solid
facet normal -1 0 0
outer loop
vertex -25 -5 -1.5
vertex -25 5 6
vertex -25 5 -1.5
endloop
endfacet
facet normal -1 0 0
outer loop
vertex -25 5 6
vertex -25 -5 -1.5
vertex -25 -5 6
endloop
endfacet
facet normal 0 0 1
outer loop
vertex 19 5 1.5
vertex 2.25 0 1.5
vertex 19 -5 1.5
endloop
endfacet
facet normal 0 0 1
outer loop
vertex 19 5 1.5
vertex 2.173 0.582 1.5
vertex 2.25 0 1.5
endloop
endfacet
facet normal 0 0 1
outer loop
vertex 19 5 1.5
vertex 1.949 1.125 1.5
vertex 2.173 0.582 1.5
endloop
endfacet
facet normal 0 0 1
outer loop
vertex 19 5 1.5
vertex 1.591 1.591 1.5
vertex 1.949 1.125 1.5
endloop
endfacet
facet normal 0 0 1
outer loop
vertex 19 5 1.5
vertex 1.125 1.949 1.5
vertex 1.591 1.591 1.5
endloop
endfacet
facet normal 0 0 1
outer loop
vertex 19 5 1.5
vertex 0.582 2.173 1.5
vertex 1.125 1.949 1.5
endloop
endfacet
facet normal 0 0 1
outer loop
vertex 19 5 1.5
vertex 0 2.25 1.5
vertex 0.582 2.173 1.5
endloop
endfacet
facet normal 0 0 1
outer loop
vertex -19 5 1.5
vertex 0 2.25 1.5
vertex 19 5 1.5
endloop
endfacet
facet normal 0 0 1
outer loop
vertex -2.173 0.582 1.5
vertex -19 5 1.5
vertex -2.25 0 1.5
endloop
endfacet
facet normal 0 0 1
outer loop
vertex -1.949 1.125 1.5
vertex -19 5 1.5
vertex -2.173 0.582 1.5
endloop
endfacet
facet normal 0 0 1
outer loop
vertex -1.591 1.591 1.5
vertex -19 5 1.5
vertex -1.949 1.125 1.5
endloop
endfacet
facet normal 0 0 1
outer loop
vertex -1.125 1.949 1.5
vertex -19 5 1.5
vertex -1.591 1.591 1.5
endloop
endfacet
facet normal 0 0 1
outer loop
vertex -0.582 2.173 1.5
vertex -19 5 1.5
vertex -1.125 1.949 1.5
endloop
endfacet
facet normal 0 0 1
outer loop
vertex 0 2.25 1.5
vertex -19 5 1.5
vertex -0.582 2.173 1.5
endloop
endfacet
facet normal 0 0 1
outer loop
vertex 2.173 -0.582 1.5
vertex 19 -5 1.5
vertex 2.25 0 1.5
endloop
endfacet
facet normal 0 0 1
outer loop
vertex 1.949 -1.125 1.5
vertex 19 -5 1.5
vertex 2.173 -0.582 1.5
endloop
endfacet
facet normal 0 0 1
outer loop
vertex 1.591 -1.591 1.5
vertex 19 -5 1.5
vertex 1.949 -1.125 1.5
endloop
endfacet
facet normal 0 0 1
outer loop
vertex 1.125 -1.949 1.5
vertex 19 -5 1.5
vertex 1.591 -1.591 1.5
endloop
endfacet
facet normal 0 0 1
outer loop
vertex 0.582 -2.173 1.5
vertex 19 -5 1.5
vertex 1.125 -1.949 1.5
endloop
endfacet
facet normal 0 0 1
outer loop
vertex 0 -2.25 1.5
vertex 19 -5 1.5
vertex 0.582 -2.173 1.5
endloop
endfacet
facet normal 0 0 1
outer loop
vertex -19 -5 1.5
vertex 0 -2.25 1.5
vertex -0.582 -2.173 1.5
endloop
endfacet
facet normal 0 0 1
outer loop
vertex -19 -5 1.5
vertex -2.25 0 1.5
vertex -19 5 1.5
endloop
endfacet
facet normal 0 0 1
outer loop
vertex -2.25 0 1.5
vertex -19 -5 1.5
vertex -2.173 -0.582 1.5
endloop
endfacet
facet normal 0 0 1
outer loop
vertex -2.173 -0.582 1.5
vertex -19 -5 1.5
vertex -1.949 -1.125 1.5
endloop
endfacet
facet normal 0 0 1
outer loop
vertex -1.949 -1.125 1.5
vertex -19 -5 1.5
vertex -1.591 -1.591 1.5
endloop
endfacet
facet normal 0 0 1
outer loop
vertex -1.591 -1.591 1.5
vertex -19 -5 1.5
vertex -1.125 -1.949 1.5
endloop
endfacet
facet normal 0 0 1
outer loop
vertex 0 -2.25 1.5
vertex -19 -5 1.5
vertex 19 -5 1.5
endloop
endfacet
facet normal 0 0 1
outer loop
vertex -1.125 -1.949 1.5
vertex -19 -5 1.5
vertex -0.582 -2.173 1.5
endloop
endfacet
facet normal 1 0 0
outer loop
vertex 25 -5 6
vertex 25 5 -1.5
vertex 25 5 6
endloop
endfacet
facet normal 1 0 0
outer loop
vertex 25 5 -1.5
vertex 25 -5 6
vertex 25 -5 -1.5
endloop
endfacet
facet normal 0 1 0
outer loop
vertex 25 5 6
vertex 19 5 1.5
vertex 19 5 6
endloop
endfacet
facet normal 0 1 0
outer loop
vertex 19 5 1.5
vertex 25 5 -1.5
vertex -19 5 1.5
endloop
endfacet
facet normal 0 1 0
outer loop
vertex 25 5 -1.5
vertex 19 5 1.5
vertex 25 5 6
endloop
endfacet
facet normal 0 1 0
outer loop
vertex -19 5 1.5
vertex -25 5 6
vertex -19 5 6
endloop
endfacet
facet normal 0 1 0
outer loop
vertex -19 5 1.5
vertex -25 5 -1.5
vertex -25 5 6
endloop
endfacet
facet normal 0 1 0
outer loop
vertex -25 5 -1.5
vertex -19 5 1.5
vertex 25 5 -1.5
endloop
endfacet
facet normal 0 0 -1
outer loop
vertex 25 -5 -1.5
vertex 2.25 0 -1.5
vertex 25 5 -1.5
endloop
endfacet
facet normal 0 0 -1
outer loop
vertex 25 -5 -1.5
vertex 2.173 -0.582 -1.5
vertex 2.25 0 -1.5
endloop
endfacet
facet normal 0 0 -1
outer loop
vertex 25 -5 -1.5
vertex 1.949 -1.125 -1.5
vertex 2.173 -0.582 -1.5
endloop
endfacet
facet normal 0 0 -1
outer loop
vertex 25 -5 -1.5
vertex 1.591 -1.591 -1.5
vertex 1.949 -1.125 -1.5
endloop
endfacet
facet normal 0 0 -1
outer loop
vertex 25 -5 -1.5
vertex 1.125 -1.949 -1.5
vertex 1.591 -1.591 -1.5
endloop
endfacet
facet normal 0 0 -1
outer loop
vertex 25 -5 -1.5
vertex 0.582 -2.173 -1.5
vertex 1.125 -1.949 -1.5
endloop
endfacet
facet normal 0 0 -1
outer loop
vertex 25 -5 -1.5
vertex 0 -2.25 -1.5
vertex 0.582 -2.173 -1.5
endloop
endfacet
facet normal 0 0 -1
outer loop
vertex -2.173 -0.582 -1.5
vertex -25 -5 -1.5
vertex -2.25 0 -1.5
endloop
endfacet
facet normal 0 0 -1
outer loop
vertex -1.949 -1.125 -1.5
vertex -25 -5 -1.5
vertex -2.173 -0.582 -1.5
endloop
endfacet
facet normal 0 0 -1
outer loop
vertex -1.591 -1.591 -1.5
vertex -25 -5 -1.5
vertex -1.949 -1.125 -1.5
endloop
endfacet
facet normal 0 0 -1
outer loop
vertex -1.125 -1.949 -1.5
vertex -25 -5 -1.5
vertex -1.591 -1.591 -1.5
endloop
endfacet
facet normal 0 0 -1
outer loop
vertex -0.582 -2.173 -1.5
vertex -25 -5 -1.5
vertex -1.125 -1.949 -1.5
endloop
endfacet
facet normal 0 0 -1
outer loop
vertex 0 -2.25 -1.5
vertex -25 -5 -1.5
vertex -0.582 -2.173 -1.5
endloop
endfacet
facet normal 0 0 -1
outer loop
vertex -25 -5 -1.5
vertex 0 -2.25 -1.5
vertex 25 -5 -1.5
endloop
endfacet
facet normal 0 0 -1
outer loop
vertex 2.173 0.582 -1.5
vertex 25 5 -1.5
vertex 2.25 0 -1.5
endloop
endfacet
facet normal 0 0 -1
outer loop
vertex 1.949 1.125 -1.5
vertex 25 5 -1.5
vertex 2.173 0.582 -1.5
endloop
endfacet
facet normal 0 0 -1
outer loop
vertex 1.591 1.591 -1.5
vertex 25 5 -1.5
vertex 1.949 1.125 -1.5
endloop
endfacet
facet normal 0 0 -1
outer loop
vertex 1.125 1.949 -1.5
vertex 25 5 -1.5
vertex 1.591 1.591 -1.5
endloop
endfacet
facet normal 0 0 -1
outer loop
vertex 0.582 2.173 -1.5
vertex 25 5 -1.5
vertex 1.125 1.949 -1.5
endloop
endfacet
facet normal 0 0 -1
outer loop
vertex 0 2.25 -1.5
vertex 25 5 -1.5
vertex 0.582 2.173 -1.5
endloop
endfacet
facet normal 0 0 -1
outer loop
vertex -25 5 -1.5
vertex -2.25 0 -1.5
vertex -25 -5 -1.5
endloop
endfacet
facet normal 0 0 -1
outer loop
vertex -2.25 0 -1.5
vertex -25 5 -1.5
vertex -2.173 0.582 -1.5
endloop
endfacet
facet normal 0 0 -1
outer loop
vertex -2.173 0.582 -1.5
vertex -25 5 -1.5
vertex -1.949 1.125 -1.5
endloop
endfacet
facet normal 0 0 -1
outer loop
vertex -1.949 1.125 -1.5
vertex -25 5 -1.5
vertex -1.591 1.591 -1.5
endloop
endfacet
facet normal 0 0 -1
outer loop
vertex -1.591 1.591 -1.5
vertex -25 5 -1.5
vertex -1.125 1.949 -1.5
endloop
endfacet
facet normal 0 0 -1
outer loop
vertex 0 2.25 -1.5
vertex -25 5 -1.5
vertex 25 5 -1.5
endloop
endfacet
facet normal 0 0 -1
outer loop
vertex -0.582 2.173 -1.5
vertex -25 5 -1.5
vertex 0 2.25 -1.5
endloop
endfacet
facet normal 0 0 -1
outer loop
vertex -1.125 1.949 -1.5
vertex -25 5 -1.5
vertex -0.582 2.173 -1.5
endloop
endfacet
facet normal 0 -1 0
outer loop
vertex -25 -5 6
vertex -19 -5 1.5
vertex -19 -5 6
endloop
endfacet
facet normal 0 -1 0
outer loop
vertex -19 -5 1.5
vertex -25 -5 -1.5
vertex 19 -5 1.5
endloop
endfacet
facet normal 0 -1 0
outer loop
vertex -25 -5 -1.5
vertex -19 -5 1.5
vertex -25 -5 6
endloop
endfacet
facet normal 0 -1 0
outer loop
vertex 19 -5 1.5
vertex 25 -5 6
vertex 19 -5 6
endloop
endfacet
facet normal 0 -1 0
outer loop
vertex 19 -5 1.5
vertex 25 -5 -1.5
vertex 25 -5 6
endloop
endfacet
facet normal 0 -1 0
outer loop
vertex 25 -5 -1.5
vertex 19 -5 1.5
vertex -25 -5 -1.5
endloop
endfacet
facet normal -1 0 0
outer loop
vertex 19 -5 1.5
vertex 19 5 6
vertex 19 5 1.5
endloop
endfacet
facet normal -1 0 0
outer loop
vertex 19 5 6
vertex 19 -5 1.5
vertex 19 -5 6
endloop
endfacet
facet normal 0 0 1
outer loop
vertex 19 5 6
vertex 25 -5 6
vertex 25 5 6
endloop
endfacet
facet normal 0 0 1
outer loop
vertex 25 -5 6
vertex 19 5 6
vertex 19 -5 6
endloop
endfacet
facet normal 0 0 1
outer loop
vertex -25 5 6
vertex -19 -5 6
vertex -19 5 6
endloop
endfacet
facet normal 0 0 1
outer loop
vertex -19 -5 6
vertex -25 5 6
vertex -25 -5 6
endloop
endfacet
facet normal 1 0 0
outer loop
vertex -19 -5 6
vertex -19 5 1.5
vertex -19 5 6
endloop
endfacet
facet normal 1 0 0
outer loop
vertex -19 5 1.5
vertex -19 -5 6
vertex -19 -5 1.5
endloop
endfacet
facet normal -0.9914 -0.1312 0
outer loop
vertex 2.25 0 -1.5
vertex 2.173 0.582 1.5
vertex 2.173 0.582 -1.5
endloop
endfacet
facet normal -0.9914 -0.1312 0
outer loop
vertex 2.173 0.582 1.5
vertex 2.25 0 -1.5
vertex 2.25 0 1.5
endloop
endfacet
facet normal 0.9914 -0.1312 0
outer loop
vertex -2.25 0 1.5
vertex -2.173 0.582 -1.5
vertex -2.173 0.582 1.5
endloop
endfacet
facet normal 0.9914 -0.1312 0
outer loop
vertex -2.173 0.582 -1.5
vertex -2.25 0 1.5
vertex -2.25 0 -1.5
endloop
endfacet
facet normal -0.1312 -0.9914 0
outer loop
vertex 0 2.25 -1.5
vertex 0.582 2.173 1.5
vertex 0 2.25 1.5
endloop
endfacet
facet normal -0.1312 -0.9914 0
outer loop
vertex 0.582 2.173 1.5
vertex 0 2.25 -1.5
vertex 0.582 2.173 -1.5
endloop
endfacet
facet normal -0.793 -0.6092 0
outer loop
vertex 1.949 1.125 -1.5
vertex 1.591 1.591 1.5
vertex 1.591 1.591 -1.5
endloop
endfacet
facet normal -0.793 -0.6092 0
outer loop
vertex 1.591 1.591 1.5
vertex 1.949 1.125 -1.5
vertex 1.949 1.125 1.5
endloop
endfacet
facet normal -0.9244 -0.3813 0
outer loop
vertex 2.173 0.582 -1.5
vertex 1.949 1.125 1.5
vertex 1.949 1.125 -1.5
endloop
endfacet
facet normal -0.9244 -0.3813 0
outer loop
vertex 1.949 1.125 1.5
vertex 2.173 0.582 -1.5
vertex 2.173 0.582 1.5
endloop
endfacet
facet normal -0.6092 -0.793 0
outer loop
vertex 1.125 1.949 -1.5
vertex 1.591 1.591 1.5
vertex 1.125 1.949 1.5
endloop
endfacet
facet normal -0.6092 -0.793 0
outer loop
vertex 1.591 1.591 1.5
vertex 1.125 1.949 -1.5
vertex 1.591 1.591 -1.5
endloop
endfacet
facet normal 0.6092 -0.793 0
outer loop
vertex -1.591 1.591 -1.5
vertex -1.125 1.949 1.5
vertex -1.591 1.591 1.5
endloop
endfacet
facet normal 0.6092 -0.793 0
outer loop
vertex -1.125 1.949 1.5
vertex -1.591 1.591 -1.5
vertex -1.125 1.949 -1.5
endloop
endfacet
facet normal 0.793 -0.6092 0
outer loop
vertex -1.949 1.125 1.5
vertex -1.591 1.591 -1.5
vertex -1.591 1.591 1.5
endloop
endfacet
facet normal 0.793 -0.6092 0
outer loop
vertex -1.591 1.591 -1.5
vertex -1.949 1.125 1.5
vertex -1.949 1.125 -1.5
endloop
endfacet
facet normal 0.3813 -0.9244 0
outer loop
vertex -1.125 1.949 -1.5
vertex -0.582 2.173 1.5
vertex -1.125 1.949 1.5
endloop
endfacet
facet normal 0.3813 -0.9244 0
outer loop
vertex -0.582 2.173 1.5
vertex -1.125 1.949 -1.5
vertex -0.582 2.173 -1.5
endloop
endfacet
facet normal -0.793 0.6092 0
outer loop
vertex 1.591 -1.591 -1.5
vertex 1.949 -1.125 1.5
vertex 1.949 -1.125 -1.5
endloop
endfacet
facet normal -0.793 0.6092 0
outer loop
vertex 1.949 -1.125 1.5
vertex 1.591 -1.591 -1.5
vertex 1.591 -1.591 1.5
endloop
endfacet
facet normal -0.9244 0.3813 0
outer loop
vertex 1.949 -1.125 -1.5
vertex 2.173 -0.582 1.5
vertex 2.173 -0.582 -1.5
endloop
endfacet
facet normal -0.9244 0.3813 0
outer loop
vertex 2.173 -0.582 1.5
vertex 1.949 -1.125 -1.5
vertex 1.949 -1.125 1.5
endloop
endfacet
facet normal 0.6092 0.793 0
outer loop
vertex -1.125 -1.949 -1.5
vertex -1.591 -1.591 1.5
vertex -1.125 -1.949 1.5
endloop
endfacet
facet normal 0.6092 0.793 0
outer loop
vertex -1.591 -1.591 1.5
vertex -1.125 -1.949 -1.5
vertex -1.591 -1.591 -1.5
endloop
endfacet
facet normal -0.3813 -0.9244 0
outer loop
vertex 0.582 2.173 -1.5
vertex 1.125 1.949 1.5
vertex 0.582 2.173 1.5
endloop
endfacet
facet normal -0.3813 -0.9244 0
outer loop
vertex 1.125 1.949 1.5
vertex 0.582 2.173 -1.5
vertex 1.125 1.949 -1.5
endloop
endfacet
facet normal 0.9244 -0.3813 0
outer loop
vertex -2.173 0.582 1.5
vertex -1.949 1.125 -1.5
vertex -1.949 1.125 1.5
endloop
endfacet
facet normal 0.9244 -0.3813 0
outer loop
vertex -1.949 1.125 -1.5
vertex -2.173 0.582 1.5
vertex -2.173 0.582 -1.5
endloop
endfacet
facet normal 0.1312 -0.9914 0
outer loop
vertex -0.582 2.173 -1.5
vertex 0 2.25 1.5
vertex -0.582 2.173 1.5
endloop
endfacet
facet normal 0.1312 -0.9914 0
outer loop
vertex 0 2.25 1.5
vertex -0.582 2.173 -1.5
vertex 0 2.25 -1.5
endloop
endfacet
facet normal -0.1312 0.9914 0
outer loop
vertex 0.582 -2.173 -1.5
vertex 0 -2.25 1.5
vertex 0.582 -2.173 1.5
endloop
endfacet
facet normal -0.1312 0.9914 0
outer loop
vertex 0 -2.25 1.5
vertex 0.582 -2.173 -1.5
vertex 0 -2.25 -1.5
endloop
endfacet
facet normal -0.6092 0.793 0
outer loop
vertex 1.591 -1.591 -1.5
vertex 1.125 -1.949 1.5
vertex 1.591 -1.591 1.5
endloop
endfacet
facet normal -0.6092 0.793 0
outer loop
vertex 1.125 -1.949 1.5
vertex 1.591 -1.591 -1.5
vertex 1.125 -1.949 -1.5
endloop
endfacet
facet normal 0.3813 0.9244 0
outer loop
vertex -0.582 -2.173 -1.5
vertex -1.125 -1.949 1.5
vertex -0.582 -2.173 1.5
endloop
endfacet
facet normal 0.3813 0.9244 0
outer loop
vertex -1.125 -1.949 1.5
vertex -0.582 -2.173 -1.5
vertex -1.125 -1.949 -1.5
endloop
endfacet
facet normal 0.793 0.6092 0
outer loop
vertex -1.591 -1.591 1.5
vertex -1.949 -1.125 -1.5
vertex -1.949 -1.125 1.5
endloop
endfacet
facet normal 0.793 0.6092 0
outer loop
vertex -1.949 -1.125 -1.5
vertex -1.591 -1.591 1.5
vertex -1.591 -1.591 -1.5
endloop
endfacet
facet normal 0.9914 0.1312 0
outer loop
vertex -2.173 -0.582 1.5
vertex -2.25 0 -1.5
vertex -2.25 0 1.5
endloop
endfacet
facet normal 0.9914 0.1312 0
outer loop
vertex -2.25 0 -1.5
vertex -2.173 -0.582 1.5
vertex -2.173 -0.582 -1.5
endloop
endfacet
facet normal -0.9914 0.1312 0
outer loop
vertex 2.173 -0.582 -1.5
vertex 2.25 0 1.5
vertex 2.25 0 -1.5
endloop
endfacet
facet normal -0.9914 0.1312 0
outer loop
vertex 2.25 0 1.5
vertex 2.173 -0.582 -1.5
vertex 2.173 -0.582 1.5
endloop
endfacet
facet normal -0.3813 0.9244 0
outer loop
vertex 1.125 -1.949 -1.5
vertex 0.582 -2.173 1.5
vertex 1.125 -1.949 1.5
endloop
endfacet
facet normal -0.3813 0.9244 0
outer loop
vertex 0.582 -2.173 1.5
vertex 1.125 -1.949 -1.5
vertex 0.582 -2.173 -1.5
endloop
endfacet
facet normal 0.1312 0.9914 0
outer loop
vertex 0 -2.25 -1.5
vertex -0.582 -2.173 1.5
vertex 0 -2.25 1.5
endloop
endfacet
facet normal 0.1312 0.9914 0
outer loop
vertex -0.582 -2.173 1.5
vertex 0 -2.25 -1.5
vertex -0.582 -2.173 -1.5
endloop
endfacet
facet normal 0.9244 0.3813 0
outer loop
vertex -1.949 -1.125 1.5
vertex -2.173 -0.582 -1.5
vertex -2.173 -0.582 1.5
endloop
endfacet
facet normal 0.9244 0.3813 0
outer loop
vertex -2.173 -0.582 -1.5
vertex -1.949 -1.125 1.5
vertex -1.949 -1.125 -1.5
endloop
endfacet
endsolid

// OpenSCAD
//  Fix on large fan 120 mm square with M4
// print 4 pieces

DiaFan=125;
DiaM4=4.5; // somewhat larger

  difference()
         {
             
  union() {         
      
 
      cube([50,10,3],center = true);  //8
      
      translate([22,0,3])
       cube([6,10,6],center = true);  //8
      
        translate([-22,0,3])
       cube([6,10,6],center = true);  //
      
      
  }         // END UNION
  
  cylinder(h=4,d=DiaM4,center=true,$fn=24); // M4 bolds 
   
   
  }
